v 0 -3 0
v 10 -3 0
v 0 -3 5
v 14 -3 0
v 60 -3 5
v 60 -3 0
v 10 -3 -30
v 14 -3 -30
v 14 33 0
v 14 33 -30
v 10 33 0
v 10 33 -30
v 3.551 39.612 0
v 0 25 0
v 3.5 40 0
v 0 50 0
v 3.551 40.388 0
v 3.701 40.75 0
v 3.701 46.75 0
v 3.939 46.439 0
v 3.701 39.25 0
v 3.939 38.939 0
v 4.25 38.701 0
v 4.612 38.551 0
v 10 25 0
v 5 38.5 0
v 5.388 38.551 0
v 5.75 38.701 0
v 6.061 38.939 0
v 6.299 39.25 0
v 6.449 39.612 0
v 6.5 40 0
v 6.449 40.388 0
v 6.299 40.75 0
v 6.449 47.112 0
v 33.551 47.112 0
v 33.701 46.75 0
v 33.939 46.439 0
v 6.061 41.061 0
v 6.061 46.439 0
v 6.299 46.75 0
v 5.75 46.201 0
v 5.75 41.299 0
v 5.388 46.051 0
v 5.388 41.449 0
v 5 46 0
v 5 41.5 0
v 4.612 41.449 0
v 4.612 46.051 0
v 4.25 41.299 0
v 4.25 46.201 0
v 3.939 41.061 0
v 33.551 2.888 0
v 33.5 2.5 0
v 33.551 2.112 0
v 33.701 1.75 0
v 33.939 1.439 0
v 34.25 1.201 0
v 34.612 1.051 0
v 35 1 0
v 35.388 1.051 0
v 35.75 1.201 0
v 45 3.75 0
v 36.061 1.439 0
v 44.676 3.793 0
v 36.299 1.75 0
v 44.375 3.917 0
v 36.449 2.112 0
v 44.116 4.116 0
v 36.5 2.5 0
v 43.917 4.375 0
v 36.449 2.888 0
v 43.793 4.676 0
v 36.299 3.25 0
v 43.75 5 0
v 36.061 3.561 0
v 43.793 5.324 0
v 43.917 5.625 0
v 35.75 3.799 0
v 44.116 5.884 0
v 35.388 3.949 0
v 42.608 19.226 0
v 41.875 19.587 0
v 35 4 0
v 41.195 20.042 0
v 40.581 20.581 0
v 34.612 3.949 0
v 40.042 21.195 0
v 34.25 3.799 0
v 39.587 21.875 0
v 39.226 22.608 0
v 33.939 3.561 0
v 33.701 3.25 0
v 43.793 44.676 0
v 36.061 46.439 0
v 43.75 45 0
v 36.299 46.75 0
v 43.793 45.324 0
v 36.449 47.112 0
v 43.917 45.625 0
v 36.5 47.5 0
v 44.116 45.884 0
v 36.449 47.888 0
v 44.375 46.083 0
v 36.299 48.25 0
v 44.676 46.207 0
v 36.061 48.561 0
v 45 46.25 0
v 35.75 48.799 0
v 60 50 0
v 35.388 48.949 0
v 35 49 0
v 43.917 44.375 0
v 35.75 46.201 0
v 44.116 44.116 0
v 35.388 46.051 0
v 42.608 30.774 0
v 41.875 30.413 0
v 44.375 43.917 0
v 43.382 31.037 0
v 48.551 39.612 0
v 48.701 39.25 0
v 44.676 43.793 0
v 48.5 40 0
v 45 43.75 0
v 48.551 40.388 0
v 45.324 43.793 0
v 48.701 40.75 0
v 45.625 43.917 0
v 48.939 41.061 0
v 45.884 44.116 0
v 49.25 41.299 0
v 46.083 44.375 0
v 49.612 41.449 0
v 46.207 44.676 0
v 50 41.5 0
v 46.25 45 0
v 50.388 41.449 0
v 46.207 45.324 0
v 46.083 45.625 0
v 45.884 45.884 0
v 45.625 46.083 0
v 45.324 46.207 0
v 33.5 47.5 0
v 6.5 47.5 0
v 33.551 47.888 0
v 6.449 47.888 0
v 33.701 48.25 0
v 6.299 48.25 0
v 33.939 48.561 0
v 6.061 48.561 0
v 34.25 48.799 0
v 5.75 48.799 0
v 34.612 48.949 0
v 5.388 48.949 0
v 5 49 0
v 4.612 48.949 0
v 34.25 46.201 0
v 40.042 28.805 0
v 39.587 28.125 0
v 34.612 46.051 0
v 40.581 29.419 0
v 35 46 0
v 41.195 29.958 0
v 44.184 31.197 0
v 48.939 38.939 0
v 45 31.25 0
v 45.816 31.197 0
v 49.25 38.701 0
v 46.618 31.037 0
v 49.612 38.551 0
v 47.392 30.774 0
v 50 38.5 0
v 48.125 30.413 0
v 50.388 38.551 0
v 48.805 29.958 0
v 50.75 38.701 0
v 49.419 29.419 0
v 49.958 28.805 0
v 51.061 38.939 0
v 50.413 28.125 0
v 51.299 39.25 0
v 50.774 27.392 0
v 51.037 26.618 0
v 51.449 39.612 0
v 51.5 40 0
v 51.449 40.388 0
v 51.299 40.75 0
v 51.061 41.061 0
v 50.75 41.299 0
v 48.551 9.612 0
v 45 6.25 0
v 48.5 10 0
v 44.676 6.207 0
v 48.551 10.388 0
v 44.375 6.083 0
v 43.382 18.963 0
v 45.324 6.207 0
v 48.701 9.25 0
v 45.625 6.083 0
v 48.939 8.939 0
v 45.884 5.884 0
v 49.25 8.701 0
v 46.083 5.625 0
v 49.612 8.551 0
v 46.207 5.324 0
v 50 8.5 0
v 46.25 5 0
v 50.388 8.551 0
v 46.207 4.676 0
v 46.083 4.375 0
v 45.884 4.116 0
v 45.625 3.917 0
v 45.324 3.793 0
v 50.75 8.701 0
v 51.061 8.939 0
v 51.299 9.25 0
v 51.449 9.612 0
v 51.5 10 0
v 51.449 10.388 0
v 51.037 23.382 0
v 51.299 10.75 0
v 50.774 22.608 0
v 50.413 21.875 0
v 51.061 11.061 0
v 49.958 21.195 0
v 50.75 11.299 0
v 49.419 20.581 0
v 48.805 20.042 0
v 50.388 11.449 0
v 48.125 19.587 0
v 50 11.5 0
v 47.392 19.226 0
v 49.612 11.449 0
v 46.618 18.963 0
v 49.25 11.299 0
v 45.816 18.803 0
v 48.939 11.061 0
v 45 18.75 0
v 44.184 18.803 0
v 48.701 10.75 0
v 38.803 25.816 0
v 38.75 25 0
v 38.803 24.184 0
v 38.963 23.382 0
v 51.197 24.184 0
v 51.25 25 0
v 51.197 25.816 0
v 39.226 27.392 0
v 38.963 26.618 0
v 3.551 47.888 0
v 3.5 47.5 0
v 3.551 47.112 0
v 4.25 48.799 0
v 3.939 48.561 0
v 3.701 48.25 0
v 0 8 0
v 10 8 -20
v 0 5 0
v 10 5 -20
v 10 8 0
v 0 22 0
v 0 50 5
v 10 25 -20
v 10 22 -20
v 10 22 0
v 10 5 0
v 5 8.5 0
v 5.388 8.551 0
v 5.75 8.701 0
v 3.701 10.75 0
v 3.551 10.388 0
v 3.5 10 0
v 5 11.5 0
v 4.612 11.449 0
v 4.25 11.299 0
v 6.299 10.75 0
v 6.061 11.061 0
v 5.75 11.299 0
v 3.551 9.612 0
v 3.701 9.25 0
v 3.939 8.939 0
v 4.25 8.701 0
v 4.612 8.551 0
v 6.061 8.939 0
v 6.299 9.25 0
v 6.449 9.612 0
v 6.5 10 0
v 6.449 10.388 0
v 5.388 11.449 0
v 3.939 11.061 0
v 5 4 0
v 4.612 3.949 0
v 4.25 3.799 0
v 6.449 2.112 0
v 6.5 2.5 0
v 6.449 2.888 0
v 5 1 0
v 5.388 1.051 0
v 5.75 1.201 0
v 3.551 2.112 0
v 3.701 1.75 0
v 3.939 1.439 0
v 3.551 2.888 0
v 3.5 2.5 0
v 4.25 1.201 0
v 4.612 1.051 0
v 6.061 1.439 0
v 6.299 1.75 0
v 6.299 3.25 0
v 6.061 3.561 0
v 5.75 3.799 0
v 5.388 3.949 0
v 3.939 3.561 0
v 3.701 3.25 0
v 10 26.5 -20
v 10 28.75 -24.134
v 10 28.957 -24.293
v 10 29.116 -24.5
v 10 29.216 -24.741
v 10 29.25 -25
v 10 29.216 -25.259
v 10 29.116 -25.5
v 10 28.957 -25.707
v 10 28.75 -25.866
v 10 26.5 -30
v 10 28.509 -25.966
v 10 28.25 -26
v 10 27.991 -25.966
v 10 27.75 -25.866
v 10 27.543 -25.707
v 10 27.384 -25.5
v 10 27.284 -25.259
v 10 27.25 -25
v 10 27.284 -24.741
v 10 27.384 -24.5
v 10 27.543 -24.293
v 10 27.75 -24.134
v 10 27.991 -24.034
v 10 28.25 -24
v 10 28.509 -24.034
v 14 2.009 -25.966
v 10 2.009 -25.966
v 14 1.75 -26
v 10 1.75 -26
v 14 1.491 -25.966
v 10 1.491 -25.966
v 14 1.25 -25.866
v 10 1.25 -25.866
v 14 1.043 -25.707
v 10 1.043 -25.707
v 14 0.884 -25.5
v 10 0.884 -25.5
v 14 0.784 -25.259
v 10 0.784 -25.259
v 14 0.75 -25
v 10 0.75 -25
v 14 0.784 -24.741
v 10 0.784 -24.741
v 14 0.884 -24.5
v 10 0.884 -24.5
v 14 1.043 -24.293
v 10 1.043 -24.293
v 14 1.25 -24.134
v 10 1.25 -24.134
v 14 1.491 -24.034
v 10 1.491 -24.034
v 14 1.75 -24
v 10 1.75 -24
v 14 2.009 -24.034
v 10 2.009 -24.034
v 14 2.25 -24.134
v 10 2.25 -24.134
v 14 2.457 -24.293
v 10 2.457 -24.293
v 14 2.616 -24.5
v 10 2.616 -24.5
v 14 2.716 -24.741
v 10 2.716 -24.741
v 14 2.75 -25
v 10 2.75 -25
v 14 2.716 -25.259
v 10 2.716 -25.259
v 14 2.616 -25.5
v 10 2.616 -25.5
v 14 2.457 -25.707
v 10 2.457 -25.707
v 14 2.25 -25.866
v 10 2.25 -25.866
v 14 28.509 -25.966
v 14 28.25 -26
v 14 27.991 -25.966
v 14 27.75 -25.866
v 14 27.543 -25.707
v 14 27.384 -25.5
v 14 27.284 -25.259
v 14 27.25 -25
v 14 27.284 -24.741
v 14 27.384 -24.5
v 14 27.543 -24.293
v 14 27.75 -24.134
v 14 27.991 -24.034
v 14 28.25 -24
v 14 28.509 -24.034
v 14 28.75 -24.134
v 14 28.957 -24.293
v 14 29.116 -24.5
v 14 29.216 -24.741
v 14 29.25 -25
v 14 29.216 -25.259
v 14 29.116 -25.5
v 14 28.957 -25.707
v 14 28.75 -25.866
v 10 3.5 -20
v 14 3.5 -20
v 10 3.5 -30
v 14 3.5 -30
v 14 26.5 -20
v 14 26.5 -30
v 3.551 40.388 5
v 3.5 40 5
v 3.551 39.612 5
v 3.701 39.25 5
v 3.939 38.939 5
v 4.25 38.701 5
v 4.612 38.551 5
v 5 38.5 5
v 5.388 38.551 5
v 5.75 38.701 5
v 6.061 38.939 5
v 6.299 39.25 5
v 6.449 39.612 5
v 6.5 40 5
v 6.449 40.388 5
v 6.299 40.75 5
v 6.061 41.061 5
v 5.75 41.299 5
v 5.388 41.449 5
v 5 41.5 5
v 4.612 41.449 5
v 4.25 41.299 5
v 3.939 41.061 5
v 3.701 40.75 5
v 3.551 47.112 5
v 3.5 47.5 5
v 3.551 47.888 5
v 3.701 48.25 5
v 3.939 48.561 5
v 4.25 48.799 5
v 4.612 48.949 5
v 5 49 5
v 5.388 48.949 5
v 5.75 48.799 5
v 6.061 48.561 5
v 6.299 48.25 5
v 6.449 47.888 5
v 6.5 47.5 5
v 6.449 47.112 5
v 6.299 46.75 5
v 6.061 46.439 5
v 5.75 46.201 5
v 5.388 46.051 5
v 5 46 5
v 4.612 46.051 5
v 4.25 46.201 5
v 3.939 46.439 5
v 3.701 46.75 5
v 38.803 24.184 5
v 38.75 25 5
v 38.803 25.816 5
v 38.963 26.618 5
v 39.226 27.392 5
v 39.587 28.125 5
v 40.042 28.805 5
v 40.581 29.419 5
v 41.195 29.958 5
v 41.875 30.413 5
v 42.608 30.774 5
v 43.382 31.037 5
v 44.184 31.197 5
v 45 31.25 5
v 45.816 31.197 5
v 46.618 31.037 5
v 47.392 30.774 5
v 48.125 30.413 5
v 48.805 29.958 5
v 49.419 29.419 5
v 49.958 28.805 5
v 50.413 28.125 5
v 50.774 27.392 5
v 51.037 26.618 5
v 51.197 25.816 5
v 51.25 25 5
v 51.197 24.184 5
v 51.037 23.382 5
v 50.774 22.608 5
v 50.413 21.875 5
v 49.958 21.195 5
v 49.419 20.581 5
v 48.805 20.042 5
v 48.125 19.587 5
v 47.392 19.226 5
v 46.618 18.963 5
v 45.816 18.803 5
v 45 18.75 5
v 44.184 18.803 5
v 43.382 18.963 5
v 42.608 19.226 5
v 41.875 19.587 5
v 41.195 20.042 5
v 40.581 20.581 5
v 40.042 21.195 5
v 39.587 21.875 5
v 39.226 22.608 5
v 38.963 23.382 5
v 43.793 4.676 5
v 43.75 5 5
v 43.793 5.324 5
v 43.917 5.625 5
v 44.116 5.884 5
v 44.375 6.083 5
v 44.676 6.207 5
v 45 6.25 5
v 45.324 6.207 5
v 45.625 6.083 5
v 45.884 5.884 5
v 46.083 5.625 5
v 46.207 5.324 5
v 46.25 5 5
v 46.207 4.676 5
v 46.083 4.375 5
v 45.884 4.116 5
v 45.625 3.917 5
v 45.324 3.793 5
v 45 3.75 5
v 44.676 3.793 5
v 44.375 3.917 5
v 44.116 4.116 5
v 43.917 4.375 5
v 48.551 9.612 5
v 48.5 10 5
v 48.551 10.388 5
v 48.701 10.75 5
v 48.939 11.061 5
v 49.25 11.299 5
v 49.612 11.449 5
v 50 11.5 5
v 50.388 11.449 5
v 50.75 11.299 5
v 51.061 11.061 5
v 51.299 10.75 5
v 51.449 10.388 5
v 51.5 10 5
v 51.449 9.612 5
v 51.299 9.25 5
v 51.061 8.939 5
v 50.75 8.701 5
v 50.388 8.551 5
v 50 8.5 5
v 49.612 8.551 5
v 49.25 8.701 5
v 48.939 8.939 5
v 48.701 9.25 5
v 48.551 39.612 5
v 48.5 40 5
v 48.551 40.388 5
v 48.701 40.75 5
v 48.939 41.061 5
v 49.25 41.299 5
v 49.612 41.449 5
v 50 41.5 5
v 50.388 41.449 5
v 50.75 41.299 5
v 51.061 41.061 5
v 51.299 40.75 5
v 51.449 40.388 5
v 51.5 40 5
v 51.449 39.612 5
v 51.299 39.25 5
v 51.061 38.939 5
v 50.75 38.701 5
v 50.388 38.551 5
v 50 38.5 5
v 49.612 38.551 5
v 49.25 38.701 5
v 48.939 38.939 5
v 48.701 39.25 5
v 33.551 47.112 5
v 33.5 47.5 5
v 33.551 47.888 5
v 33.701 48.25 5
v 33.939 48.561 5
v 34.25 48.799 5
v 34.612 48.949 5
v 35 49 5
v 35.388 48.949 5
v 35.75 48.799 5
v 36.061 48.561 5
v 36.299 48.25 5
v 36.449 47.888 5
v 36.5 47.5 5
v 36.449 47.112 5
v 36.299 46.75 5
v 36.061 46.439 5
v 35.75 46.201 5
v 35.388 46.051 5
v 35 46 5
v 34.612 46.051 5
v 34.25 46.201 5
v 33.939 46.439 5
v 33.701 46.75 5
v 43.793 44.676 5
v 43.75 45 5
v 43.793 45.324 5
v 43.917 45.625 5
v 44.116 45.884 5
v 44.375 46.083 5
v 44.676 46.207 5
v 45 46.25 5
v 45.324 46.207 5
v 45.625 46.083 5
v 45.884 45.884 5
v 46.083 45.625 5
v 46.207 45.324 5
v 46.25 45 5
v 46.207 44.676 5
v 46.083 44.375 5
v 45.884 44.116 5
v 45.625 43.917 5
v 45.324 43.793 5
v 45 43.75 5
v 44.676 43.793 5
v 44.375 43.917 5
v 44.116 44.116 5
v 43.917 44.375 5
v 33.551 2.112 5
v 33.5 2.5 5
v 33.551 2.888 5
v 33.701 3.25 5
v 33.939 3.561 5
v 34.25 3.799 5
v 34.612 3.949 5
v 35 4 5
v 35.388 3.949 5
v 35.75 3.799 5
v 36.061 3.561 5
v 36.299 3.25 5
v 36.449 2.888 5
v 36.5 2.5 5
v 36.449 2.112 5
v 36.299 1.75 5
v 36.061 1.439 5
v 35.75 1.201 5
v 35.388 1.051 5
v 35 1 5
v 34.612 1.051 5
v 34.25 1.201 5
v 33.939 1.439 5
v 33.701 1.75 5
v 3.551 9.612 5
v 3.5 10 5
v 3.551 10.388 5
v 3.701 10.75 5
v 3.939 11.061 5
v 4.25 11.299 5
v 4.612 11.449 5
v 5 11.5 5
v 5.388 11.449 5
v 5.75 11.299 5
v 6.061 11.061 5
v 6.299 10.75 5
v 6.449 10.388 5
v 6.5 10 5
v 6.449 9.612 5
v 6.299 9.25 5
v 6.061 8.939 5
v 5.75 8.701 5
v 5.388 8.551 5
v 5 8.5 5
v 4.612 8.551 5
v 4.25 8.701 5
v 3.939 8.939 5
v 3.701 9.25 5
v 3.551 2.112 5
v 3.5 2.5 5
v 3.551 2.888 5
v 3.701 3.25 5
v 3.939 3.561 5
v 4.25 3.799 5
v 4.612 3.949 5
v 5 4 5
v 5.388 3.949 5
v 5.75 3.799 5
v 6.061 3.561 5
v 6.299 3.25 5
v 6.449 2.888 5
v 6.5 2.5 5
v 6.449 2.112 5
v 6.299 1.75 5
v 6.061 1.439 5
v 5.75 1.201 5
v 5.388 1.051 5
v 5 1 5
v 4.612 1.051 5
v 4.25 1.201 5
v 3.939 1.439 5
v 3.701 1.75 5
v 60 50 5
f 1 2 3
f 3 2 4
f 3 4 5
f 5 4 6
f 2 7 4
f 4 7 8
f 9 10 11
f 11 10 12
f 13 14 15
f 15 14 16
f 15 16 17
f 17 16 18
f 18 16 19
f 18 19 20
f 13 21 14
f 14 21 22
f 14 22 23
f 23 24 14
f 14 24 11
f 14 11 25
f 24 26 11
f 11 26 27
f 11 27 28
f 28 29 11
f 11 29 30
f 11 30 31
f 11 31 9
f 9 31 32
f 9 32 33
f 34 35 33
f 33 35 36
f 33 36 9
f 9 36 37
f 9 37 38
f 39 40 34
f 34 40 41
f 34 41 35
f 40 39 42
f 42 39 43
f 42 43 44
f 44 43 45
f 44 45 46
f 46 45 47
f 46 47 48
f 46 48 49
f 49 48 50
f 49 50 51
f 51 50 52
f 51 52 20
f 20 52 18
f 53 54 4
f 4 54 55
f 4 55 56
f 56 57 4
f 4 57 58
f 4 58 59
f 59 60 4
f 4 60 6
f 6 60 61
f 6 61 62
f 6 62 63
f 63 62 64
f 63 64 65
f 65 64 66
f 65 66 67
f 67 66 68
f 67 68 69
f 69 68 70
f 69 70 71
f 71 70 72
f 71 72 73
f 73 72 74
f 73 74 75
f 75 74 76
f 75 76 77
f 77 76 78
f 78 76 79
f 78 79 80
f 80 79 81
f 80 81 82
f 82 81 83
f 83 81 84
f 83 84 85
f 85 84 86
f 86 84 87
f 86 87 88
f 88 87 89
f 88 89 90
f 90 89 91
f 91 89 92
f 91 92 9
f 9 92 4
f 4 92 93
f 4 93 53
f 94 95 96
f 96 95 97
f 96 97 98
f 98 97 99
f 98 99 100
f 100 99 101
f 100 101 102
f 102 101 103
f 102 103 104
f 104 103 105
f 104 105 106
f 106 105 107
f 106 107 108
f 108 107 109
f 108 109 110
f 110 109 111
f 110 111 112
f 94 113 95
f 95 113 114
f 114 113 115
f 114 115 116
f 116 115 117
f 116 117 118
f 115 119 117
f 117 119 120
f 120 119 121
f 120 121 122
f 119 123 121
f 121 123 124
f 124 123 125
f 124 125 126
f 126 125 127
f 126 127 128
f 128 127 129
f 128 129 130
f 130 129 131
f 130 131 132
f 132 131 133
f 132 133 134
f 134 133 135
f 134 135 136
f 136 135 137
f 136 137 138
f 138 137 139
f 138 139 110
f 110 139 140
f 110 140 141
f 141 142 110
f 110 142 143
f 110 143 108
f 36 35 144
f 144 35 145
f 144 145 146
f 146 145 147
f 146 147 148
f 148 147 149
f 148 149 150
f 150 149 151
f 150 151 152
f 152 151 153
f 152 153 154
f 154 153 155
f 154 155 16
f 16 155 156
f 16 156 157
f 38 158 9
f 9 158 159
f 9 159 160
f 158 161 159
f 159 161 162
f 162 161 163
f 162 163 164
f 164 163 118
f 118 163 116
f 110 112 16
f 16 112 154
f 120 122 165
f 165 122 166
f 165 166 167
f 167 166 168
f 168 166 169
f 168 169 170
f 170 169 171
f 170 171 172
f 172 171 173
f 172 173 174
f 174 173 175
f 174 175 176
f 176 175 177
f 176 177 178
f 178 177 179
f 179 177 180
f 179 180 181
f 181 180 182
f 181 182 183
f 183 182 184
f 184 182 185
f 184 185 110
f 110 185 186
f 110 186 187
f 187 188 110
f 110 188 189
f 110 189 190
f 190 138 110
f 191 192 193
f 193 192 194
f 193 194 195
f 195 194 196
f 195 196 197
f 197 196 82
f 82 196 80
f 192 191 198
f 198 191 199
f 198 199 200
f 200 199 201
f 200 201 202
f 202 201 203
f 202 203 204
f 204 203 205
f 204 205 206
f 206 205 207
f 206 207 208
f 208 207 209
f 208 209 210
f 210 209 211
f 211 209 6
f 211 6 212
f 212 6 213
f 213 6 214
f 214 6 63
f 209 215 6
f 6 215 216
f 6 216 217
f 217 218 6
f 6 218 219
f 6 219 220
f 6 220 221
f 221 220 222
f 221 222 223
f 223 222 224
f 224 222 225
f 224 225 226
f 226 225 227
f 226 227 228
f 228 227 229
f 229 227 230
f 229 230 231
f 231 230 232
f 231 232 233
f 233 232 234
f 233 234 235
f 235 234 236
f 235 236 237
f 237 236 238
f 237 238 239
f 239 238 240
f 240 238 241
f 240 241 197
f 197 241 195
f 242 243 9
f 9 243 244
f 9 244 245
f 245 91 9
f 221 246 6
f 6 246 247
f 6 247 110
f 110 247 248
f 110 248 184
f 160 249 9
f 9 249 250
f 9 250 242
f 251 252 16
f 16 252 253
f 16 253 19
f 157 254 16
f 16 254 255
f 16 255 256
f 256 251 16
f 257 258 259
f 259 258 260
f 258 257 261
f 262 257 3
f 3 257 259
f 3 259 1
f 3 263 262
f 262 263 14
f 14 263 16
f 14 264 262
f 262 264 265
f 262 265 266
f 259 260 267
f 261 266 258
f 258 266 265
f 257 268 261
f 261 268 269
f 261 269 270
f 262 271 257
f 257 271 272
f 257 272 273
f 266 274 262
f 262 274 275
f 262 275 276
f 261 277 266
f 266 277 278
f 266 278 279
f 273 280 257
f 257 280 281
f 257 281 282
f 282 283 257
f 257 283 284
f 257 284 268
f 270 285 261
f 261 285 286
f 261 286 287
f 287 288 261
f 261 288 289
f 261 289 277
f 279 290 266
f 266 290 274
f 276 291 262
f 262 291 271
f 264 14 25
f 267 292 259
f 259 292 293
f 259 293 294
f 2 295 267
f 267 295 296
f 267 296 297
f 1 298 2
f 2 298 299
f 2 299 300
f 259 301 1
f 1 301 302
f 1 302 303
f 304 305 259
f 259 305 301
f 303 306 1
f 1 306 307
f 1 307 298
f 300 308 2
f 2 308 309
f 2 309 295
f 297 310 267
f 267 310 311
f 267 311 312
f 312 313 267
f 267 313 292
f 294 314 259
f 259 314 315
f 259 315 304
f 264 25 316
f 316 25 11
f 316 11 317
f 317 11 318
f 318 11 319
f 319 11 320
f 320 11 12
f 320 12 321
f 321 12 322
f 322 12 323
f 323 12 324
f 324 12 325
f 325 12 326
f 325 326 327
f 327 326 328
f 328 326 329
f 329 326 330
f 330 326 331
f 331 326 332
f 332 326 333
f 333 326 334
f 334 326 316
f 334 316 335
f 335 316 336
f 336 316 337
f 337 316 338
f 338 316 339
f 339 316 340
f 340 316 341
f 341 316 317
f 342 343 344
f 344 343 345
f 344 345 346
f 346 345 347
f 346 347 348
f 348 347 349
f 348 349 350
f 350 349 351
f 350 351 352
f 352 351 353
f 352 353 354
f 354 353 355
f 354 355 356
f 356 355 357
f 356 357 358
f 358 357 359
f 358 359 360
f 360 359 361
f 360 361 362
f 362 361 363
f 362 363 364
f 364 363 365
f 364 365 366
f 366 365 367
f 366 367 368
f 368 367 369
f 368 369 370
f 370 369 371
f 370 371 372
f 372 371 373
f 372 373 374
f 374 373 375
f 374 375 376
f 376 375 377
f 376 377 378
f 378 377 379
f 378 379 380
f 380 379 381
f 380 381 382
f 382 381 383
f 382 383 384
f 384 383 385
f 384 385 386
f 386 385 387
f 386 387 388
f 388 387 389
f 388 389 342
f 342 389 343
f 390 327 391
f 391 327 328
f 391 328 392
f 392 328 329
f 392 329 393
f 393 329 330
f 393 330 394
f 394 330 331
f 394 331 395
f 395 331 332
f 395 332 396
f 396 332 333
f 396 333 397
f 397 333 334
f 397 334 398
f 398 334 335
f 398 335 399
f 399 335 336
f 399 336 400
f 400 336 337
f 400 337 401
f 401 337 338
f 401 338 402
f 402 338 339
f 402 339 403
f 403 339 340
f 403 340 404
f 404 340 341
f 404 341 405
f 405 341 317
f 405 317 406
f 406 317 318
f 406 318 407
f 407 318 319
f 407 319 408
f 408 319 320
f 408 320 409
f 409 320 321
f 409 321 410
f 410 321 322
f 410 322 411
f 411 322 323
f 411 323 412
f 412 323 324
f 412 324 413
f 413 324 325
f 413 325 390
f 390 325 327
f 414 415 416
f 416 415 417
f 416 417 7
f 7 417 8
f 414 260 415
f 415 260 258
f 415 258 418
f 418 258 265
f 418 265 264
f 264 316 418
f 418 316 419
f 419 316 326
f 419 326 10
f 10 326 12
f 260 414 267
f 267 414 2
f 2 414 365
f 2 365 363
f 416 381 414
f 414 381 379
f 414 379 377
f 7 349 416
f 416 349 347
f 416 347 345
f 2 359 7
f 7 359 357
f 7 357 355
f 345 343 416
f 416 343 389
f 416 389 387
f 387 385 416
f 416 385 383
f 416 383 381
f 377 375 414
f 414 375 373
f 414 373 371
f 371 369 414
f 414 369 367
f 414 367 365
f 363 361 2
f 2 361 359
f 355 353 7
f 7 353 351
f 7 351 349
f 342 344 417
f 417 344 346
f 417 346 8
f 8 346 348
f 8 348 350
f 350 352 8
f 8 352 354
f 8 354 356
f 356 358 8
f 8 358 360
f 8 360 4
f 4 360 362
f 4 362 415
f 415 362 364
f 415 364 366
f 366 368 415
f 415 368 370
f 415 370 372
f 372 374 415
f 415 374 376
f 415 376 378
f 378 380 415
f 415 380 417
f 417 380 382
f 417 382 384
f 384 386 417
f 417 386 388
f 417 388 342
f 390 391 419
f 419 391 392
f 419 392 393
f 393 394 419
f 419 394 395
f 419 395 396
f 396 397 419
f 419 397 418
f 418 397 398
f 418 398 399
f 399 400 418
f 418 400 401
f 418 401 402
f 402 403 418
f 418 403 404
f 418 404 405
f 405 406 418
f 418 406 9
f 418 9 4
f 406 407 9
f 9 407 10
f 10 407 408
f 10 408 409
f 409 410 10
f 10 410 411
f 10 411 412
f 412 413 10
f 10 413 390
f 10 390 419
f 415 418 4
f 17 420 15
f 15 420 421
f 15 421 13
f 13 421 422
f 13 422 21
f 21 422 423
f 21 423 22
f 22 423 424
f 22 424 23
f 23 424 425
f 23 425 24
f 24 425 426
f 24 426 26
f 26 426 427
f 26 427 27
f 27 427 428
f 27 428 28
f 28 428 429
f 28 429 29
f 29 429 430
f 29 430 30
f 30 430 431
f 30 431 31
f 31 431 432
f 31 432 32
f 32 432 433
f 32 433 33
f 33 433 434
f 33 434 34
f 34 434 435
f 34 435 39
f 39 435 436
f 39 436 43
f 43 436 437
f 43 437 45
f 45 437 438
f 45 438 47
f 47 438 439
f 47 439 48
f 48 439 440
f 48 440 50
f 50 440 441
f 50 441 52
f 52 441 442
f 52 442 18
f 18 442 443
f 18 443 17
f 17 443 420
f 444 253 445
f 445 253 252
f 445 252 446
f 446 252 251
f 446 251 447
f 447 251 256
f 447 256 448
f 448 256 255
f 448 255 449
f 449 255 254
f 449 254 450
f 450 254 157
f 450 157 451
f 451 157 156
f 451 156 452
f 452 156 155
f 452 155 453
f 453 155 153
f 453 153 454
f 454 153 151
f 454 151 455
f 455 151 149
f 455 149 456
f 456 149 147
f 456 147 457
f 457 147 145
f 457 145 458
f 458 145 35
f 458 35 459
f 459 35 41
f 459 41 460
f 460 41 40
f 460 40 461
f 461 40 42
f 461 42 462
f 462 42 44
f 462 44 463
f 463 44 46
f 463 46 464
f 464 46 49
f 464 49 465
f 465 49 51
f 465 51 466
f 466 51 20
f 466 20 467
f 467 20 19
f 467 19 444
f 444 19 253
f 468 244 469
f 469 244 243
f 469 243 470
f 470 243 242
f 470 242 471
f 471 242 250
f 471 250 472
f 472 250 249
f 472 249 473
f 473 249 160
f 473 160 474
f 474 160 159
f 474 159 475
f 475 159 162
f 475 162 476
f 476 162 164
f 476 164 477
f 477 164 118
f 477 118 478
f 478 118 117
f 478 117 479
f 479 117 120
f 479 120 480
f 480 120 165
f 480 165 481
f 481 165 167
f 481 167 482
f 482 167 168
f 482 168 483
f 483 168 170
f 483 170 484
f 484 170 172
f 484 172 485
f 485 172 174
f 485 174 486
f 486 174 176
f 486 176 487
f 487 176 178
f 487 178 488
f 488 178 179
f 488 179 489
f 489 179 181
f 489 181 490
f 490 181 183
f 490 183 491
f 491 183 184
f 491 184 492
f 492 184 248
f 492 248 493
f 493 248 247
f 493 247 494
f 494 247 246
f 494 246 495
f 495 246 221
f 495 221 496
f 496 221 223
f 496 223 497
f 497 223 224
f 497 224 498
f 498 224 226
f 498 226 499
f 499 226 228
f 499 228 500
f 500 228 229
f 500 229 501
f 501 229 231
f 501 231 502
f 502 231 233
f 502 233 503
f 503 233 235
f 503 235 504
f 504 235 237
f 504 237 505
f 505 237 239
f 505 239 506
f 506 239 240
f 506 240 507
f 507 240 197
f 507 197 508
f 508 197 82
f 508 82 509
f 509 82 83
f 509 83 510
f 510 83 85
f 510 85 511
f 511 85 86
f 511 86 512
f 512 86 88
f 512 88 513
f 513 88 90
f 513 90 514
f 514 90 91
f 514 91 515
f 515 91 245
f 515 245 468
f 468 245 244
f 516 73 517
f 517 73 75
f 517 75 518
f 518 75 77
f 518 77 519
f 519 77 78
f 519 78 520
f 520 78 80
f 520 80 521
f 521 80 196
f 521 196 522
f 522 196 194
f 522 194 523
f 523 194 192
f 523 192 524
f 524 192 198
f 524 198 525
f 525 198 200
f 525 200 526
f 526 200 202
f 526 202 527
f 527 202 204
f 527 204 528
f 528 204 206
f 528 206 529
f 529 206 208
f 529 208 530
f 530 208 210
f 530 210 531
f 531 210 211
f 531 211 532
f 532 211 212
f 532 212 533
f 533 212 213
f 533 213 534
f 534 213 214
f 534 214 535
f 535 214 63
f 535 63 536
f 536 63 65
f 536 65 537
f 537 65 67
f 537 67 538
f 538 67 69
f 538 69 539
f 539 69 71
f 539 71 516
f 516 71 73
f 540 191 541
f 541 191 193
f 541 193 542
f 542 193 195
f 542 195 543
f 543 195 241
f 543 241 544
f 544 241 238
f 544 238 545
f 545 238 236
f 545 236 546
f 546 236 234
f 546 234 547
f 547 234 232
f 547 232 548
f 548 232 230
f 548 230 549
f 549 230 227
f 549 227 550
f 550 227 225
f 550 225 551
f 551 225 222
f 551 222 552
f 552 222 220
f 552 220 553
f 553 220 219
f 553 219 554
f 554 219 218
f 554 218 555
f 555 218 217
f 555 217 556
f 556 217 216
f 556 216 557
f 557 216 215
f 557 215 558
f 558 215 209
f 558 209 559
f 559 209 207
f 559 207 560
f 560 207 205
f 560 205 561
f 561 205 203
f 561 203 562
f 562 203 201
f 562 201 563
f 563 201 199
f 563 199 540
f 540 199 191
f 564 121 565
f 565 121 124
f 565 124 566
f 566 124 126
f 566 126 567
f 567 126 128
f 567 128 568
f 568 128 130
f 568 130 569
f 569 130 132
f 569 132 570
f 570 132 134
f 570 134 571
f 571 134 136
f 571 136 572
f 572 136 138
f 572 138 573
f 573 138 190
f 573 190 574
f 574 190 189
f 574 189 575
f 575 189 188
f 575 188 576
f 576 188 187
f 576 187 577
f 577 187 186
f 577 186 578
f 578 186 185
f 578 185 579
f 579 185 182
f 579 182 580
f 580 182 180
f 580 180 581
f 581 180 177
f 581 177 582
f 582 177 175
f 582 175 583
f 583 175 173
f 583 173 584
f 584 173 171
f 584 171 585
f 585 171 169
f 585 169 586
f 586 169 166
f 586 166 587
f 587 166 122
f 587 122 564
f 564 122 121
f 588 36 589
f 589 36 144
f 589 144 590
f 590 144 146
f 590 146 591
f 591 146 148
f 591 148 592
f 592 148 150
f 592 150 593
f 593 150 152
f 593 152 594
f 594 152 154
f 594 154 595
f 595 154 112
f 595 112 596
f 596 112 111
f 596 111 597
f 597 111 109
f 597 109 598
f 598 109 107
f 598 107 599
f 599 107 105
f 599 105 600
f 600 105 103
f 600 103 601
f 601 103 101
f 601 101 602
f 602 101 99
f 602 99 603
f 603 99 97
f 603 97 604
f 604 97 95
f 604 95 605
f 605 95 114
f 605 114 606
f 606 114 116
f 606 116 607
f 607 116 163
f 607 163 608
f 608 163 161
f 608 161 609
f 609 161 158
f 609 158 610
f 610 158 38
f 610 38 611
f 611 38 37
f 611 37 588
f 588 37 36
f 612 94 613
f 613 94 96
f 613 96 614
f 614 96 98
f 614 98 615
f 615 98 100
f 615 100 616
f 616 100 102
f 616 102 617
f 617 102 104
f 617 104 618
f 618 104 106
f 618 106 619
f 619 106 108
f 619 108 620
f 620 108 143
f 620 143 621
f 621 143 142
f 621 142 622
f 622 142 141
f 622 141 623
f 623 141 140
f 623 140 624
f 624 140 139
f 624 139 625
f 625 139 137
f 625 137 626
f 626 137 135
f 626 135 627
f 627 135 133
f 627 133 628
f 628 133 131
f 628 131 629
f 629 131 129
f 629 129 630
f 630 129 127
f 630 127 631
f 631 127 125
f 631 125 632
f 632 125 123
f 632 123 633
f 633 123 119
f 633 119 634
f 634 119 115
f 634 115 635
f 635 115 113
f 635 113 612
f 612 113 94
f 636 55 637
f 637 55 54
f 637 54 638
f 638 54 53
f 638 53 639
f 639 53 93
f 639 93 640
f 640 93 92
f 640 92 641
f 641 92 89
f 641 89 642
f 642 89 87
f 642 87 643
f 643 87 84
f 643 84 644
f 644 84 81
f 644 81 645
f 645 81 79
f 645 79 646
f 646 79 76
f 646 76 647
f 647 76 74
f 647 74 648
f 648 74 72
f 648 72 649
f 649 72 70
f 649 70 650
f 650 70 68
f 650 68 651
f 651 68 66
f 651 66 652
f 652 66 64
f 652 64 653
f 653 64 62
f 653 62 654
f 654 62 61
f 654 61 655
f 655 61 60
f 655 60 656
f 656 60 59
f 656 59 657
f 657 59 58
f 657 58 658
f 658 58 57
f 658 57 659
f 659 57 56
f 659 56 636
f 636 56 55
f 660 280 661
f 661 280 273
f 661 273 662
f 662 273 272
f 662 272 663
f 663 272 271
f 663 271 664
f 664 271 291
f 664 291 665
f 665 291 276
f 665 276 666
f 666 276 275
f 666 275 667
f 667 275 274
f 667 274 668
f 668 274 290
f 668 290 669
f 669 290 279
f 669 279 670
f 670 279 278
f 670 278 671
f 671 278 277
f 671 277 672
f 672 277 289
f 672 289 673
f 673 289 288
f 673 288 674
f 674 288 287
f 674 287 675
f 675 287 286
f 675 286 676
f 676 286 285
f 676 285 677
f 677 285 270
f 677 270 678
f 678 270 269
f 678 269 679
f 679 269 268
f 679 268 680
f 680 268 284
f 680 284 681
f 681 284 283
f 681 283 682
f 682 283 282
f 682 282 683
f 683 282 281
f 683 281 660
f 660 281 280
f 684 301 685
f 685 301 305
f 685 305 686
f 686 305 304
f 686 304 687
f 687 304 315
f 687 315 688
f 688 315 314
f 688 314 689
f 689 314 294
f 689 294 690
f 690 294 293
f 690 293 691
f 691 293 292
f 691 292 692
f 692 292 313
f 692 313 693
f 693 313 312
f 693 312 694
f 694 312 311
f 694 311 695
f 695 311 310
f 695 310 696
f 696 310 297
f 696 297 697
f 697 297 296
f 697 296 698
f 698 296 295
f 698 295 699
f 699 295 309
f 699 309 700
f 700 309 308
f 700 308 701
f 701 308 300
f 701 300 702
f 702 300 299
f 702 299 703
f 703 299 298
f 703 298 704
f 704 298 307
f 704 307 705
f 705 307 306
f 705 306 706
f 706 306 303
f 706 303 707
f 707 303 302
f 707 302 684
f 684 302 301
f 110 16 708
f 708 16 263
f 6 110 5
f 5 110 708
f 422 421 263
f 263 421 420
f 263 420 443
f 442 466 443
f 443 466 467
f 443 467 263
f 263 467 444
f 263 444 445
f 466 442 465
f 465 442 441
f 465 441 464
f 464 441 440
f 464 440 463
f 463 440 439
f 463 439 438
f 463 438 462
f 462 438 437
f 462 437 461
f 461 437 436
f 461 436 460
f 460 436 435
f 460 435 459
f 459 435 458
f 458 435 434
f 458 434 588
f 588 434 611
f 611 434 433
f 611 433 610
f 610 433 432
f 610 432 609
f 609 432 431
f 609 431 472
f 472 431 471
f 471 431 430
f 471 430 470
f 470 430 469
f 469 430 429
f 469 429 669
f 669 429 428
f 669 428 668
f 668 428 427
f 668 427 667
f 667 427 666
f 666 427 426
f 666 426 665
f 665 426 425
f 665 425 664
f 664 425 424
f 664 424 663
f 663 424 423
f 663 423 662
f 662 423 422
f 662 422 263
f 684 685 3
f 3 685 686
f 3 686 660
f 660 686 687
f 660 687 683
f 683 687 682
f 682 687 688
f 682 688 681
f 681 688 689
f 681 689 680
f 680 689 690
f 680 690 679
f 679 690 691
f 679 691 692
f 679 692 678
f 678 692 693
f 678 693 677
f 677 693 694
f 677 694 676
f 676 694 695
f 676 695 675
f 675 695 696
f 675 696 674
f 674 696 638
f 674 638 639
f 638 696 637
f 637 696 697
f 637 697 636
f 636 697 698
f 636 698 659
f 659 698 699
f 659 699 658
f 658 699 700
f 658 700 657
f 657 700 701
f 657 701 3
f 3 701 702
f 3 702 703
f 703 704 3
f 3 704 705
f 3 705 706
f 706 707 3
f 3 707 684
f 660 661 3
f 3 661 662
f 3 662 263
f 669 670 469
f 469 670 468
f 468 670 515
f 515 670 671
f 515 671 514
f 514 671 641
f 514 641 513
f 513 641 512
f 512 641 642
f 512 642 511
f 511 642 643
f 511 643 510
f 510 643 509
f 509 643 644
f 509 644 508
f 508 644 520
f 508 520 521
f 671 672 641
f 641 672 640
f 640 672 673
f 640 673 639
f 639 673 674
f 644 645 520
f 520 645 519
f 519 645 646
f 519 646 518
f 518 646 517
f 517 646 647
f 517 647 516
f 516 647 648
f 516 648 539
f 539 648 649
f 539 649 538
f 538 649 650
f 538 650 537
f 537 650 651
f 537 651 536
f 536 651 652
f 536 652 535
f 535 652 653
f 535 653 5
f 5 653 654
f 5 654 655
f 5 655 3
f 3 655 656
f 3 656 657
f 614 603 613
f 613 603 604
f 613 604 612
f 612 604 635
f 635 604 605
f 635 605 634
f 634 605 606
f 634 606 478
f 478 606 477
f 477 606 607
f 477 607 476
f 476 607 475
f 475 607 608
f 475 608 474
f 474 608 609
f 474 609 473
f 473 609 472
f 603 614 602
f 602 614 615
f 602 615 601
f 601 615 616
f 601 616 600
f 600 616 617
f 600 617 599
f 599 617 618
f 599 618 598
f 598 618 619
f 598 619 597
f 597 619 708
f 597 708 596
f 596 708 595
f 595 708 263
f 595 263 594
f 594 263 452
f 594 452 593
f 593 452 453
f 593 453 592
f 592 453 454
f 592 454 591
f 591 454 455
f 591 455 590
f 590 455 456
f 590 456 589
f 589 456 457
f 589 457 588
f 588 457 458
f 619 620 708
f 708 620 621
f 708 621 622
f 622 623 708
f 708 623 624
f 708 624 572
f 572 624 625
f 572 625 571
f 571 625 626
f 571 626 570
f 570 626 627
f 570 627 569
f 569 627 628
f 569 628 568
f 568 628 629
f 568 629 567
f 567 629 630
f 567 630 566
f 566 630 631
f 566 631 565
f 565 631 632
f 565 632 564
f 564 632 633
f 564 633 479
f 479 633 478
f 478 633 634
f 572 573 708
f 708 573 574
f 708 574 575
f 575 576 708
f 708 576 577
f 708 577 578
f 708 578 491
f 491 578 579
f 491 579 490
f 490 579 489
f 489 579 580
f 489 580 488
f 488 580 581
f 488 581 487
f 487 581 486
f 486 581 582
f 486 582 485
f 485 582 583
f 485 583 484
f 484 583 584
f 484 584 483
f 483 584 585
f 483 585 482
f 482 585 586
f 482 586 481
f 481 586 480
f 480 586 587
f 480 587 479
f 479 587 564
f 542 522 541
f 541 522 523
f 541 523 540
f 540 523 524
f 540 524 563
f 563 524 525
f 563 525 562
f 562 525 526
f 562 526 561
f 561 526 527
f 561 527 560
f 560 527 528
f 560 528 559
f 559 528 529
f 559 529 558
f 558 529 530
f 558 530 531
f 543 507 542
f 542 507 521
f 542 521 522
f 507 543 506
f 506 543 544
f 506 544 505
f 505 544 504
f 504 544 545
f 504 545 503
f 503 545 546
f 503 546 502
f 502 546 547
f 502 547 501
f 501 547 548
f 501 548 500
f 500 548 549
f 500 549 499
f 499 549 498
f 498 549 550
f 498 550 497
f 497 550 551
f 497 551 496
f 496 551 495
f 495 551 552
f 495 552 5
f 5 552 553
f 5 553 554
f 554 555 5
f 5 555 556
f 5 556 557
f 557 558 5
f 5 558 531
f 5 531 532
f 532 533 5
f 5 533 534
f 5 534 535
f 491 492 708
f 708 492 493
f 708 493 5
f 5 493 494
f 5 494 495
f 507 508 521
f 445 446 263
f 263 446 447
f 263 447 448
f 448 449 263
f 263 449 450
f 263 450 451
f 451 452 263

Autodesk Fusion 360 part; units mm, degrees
sketch "Sketch1" plane through (0, 0, 0) normal (0, 0, 1) x (1, 0, 0)
  line L0 (0, 0) -> (60, 0)
  line L1 (60, 0) -> (60, 50)
  line L2 (60, 50) -> (0, 50)
  line L3 (0, 50) -> (0, 0)
  line L4 (0, 50) -> (5, 50)
  line L5 (5, 50) -> (5, 47.5)
  line L6 (5, 47.5) -> (0, 47.5)
  line L7 (0, 47.5) -> (0, 50)
  line L8 (0, 0) -> (5, 0)
  line L9 (5, 0) -> (5, 2.5)
  line L10 (5, 2.5) -> (0, 2.5)
  line L11 (0, 2.5) -> (0, 0)
  circle A0 centre (5, 2.5) radius 1.5
  circle A1 centre (5, 47.5) radius 1.5
  line L12 (5, 47.5) -> (35, 47.5)
  line L13 (5, 2.5) -> (35, 2.5)
  line L14 (5, 50) -> (5, 40)
  line L15 (5, 0) -> (5, 10)
  line L16 (5, 40) -> (50, 40)
  line L17 (5, 10) -> (50, 10)
  line L18 (60, 50) -> (60, 45)
  line L19 (60, 45) -> (45, 45)
  circle A2 centre (45, 45) radius 1.25
  line L20 (60, 0) -> (60, 5)
  line L21 (60, 5) -> (45, 5)
  circle A3 centre (45, 5) radius 1.25
  line L22 (60, 0) -> (60, 25)
  line L23 (60, 25) -> (45, 25)
  circle A4 centre (45, 25) radius 6.25
  circle A5 centre (50, 40) radius 1.5
  circle A6 centre (5, 10) radius 1.5
  circle A7 centre (50, 10) radius 1.5
  circle A8 centre (35, 47.5) radius 1.5
  circle A9 centre (35, 2.5) radius 1.5
  dimension "d1" = 60
  dimension "d2" = 50
  dimension "d3" = 5
  dimension "d4" = 2.5
  dimension "d5" = 5
  dimension "d6" = 2.5
  dimension "d7" = 3
  dimension "d8" = 3
  dimension "d9" = 30
  dimension "d10" = 30
  dimension "d11" = 10
  dimension "d12" = 10
  dimension "d13" = 45
  dimension "d14" = 45
  dimension "d15" = 15
  dimension "d16" = 2.5
  dimension "d17" = 5
  dimension "d18" = 15
  dimension "d19" = 2.5
  dimension "d20" = 15
  dimension "d21" = 12.5
  dimension "d22" = 3
  dimension "d23" = 3
  dimension "d24" = 3
  dimension "d25" = 3
  dimension "d26" = 3
extrude "Extrude1" add sketch "Sketch1" along normal blind 5 contours L0 L3 L8 L9 L10 L11 A0 L15 | L0 L1 L2 L3 L5 L6 L9 L10 A0 A1 L14 L15 L18 L20 L22 | L2 L3 L4 L5 L6 L7 A1 L14
sketch "Sketch2" plane through (0, 0, 5) normal (0, 0, 1) x (1, 0, 0)
  circle A0 centre (5, 2.5) radius 1.5
  circle A1 centre (5, 10) radius 1.5
  circle A2 centre (35, 2.5) radius 1.5
  circle A3 centre (45, 45) radius 1.25
  circle A4 centre (35, 47.5) radius 1.5
  circle A5 centre (50, 40) radius 1.5
  circle A6 centre (50, 10) radius 1.5
  circle A7 centre (45, 5) radius 1.25
  circle A8 centre (45, 25) radius 6.25
  circle A9 centre (5, 47.5) radius 1.5
  line L0 (0, 50) -> (0, 0)
  line L1 (0, 0) -> (60, 0)
  line L2 (60, 0) -> (60, 50)
  line L3 (60, 50) -> (0, 50)
  line L4 (50, 40) -> (5, 40)
  circle A10 centre (5, 40) radius 1.5
  dimension "d29" = 45
  dimension "d30" = 3
extrude "Extrude2" cut sketch "Sketch2" against normal blind 5 contours A10
sketch "Sketch3" plane through (0, 0, 0) normal (0, 0, -1) x (-1, 0, 0)
  circle A0 centre (-5, 40) radius 1.5
  circle A1 centre (-5, 2.5) radius 1.5
  circle A2 centre (-5, 10) radius 1.5
  circle A3 centre (-35, 2.5) radius 1.5
  circle A4 centre (-45, 45) radius 1.25
  circle A5 centre (-35, 47.5) radius 1.5
  circle A6 centre (-50, 40) radius 1.5
  circle A7 centre (-50, 10) radius 1.5
  circle A8 centre (-45, 5) radius 1.25
  circle A9 centre (-45, 25) radius 6.25
  circle A10 centre (-5, 47.5) radius 1.5
  line L0 (0, 0) -> (0, 50)
  line L1 (0, 50) -> (-60, 50)
  line L2 (-60, 50) -> (-60, 0)
  line L3 (-60, 0) -> (0, 0)
  line L4 (0, 0) -> (-10, 0)
  line L5 (-10, 0) -> (-14, 0)
  line L6 (-14, 0) -> (-14, 30)
  line L7 (-14, 30) -> (-10, 30)
  line L8 (-10, 30) -> (-10, 0)
  dimension "d33" = 10
  dimension "d34" = 4
  dimension "d35" = 30
extrude "Extrude3" add sketch "Sketch3" along normal blind 20 contours L3 L5 L6 L7 L8
sketch "Sketch4" plane through (0, 0, -20) normal (0, 0, -1) x (-1, 0, 0)
  line L0 (-10, 30) -> (-14, 30)
  line L1 (-14, 30) -> (-14, 0)
  line L2 (-14, 0) -> (-10, 0)
  line L3 (-10, 0) -> (-10, 30)
  line L4 (-14, 30) -> (-10, 30)
  line L5 (-10, 30) -> (-10, 26.5)
  line L6 (-10, 26.5) -> (-14, 26.5)
  line L7 (-14, 26.5) -> (-14, 30)
  line L8 (-10, 0) -> (-14, 0)
  line L9 (-14, 0) -> (-14, 3.5)
  line L10 (-14, 3.5) -> (-10, 3.5)
  line L11 (-10, 3.5) -> (-10, 0)
  dimension "d38" = 3.5
  dimension "d39" = 3.5
extrude "Extrude4" add sketch "Sketch4" along normal blind 10 contours L0 L1 L3 L4 L5 L6 L7 | L1 L2 L3 L8 L9 L10 L11
sketch "Sketch5" plane through (10, 0, 0) normal (-1, 0, 0) x (0, 0, 1)
  line L0 (0, 0) -> (0, 30)
  line L1 (0, 30) -> (-30, 30)
  line L2 (-30, 30) -> (-30, 26.5)
  line L3 (-30, 26.5) -> (-20, 26.5)
  line L4 (-20, 26.5) -> (-20, 3.5)
  line L5 (-20, 3.5) -> (-30, 3.5)
  line L6 (-30, 3.5) -> (-30, 0)
  line L7 (-30, 0) -> (0, 0)
  line L8 (-30, 30) -> (-30, 28.25)
  line L9 (-30, 28.25) -> (-25, 28.25)
  line L10 (-30, 0) -> (-30, 1.75)
  line L11 (-30, 1.75) -> (-25, 1.75)
  circle A0 centre (-25, 28.25) radius 1
  circle A1 centre (-25, 1.75) radius 1
  dimension "d42" = 5
  dimension "d43" = 2
  dimension "d44" = 2
extrude "Extrude5" cut sketch "Sketch5" against normal blind 4 contours A0 | A1
sketch "Sketch6" plane through (0, 0, 0) normal (0, 0, -1) x (-1, 0, 0)
  line L0 (-14, 0) -> (-14, 30)
  line L1 (-14, 30) -> (-10, 30)
  line L2 (-10, 30) -> (-10, 0)
  line L3 (-10, 0) -> (0, 0)
  line L4 (0, 0) -> (0, 50)
  line L5 (0, 50) -> (-60, 50)
  line L6 (-60, 50) -> (-60, 0)
  line L7 (-60, 0) -> (-14, 0)
  circle A0 centre (-5, 47.5) radius 1.5
  circle A1 centre (-45, 25) radius 6.25
  circle A2 centre (-45, 5) radius 1.25
  circle A3 centre (-50, 10) radius 1.5
  circle A4 centre (-50, 40) radius 1.5
  circle A5 centre (-35, 47.5) radius 1.5
  circle A6 centre (-45, 45) radius 1.25
  circle A7 centre (-35, 2.5) radius 1.5
  circle A8 centre (-5, 10) radius 1.5
  circle A9 centre (-5, 2.5) radius 1.5
  circle A10 centre (-5, 40) radius 1.5
  line L8 (-10, 0) -> (-10, 5)
  line L9 (-10, 30) -> (-10, 25)
  line L10 (-10, 5) -> (0, 5)
  line L11 (0, 5) -> (0, 8)
  line L12 (0, 8) -> (-10, 8)
  line L13 (-10, 8) -> (-10, 5)
  line L14 (-10, 25) -> (0, 25)
  line L15 (0, 25) -> (0, 22)
  line L16 (0, 22) -> (-10, 22)
  line L17 (-10, 22) -> (-10, 25)
  dimension "d47" = 5
  dimension "d48" = 3
extrude "Extrude6" add sketch "Sketch6" along normal blind 20 contours L2 L4 L14 L15 L16 L17 | L2 L4 L10 L11 L12 L13
chamfer "Chamfer1" distance 10 distance2 20 2 edges at (0, 23.5, -20) (0, 6.5, -20) measured on face at (12.6667, 12.6667, -20) measured on face at (12.6667, 12.6667, -20)
extrude "Extrude7" add 1 faces at (12.6667, 30, -10) along direction (0, 1, 0) blind 3
extrude "Extrude8" add 1 faces at (24.6667, 0, 3.3333) along direction (0, -1, 0) blind 3
